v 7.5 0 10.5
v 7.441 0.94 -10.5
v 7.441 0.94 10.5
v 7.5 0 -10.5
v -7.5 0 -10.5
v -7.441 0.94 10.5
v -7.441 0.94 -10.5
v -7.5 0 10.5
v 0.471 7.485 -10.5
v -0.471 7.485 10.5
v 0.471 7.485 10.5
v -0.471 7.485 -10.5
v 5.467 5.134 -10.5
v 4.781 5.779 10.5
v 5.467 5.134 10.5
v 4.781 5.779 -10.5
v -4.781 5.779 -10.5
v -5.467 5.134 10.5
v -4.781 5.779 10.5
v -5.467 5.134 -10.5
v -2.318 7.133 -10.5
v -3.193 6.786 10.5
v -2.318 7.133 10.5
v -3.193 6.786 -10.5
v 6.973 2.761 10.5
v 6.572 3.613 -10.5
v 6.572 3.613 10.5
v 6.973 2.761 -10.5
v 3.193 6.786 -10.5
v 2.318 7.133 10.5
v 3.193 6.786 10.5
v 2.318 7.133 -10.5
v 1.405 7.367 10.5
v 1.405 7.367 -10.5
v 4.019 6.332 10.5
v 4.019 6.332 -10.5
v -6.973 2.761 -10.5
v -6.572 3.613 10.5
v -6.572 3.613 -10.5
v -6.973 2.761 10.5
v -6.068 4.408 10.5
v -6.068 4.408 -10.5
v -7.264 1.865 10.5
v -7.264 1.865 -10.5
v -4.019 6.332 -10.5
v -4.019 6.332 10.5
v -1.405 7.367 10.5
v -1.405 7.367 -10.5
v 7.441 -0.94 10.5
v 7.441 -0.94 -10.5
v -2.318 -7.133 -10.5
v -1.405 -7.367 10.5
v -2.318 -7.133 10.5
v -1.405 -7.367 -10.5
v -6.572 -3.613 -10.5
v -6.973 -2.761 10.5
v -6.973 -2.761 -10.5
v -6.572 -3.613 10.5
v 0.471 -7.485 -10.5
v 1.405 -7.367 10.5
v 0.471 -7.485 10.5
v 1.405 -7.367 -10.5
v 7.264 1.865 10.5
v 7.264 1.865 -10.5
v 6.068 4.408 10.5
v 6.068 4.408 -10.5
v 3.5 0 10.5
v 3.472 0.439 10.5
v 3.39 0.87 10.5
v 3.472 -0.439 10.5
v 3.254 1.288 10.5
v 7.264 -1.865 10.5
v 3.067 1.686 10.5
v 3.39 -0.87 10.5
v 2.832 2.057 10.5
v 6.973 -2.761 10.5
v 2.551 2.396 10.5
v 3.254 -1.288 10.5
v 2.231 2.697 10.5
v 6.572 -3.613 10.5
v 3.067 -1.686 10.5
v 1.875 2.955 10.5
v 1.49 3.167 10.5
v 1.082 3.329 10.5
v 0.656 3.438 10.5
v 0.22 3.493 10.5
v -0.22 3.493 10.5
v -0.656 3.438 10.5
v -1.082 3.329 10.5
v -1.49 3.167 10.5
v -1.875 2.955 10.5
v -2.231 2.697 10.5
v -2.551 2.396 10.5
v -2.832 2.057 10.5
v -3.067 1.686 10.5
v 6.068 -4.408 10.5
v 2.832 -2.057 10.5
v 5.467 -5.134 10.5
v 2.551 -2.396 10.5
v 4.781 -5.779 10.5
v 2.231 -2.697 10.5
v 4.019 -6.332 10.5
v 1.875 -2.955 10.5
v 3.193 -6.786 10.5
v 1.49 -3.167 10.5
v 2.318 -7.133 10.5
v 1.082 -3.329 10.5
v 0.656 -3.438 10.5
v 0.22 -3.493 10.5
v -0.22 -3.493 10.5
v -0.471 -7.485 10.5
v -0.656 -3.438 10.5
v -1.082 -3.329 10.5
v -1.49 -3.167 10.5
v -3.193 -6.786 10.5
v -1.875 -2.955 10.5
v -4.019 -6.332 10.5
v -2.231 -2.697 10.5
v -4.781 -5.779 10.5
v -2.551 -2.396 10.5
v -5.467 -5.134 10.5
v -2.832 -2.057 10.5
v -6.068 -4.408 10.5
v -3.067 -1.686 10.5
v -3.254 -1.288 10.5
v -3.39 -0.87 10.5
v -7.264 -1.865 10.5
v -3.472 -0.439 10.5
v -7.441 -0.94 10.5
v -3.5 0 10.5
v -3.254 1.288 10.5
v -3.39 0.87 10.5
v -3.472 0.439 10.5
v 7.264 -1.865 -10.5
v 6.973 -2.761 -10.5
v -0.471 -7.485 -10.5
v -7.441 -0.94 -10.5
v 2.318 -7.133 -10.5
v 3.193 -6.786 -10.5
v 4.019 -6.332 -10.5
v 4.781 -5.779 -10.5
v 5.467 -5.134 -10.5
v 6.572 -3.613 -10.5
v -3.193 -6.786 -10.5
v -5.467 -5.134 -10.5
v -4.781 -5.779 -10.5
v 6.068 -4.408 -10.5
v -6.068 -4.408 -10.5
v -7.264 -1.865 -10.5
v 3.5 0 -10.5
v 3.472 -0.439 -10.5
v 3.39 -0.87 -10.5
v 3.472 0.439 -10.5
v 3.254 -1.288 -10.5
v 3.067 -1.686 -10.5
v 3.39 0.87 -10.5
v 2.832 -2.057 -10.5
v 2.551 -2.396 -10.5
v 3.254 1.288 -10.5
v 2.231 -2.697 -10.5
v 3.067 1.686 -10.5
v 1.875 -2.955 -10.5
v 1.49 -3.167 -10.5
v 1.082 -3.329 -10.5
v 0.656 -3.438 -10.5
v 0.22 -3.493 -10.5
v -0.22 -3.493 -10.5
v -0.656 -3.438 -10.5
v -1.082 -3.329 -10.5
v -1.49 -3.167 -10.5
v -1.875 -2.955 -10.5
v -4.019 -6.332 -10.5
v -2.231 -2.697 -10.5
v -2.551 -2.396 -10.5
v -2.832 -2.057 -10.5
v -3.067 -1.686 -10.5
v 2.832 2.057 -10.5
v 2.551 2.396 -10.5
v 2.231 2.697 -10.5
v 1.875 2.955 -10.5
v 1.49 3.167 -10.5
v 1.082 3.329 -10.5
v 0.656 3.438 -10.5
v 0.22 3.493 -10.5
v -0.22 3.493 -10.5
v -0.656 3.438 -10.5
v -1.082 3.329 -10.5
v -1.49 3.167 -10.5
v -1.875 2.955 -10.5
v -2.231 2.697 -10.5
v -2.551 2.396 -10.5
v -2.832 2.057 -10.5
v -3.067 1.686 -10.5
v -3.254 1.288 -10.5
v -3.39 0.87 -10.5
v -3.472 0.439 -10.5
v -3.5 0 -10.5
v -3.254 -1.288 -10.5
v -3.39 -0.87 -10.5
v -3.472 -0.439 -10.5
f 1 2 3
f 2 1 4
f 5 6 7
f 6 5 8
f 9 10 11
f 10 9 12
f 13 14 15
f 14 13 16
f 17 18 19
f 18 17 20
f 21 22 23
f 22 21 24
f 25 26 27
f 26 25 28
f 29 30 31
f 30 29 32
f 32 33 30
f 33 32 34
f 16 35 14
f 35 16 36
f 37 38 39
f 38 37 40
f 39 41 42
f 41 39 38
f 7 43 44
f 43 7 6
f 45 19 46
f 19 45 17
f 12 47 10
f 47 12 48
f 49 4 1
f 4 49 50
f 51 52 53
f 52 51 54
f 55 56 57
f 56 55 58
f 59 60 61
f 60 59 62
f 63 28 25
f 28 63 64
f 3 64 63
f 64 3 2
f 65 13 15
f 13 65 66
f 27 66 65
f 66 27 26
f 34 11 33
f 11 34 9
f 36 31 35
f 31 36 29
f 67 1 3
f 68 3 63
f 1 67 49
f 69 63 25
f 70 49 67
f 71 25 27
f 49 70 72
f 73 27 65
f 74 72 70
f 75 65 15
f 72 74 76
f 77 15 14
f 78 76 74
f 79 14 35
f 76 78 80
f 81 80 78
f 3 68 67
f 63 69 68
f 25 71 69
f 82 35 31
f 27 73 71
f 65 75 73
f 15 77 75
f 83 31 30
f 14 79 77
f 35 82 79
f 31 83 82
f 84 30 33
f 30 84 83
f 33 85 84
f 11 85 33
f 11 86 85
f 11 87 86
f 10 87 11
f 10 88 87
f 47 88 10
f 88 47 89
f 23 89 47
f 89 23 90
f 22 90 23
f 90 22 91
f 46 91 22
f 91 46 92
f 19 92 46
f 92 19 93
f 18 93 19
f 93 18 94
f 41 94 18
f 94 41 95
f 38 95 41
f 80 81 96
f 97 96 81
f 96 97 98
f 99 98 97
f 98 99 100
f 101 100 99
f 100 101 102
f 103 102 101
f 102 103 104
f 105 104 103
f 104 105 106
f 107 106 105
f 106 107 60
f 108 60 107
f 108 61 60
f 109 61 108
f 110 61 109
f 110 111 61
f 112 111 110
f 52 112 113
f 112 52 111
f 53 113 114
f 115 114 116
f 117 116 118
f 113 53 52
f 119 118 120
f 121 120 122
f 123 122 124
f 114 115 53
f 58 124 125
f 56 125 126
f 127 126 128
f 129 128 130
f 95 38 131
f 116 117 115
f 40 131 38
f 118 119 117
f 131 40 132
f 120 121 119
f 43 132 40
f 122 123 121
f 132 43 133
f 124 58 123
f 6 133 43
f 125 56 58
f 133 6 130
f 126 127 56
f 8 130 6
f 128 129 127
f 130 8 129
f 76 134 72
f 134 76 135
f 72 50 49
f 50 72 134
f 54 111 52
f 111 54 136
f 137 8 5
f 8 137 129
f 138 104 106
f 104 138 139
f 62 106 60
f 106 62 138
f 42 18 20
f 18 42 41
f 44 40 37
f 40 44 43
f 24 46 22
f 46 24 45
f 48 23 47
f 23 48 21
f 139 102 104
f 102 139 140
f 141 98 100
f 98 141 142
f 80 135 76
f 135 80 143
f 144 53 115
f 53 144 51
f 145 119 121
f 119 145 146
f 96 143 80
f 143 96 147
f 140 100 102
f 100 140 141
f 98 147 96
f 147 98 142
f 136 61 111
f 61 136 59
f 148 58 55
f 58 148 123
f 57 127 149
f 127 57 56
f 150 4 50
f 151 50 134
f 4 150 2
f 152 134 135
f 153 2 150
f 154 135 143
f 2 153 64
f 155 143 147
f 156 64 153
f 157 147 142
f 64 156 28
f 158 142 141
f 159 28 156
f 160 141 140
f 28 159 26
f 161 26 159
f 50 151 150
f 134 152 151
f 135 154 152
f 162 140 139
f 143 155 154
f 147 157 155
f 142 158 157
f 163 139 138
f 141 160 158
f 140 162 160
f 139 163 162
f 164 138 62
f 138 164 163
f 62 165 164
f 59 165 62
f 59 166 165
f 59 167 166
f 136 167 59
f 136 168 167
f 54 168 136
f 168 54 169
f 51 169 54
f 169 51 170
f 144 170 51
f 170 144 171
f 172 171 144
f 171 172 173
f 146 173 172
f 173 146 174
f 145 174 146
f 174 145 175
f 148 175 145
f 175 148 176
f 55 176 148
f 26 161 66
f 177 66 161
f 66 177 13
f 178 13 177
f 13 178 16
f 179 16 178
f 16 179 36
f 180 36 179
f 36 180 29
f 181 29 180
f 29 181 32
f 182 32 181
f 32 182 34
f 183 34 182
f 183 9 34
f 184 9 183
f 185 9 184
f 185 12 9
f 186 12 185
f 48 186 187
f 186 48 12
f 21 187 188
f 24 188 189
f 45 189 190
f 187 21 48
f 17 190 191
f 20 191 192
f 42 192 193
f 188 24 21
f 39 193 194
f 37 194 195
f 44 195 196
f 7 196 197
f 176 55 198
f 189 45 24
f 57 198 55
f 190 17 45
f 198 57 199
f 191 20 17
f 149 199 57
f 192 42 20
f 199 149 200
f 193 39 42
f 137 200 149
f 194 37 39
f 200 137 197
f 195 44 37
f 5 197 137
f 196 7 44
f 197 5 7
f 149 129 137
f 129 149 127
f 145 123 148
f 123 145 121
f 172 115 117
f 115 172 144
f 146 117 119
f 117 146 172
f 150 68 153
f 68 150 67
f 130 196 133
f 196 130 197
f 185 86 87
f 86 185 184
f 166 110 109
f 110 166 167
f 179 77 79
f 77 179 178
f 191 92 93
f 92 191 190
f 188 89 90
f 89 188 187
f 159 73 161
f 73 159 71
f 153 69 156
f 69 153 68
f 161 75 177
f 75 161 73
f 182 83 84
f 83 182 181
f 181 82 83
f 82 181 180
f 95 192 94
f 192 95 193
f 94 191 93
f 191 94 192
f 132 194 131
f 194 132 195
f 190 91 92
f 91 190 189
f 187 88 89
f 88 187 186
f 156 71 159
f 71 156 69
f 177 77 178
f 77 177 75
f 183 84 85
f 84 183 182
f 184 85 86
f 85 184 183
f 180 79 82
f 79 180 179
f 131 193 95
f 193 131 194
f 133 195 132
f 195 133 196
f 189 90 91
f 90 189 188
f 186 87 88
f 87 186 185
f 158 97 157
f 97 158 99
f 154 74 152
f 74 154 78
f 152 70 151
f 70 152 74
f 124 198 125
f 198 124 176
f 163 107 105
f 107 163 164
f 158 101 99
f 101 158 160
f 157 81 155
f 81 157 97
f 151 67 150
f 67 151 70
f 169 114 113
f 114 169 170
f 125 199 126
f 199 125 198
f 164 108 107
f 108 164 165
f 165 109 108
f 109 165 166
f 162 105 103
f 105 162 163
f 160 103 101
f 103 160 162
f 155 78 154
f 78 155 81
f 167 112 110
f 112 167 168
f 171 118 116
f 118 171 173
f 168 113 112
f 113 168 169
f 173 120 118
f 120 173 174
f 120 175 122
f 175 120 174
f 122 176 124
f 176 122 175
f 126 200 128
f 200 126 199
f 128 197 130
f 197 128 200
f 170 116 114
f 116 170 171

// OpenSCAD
$fn = 50;


difference() {
	union() {
		translate(v = [0, 0, -10.5000000000]) {
			cylinder(h = 21, r = 7.5000000000);
		}
	}
	union() {
		translate(v = [0, 0, -100.0000000000]) {
			cylinder(h = 200, r = 3.5000000000);
		}
	}
}
